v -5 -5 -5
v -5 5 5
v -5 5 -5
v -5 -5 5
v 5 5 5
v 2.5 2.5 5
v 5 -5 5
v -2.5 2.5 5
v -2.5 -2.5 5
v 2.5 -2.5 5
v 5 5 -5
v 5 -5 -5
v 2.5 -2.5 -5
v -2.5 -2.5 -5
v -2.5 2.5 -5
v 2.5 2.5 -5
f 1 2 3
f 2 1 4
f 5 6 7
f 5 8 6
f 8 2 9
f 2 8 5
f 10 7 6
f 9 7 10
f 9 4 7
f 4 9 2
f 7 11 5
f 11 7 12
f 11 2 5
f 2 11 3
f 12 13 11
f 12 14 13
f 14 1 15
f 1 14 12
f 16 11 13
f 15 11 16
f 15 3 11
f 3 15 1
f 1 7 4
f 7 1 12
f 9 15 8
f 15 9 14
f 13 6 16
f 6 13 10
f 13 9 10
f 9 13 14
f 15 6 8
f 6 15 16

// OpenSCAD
difference() {
  cube([10, 10, 10], center=true);
  cube([5, 5, 20], center=true);
}
